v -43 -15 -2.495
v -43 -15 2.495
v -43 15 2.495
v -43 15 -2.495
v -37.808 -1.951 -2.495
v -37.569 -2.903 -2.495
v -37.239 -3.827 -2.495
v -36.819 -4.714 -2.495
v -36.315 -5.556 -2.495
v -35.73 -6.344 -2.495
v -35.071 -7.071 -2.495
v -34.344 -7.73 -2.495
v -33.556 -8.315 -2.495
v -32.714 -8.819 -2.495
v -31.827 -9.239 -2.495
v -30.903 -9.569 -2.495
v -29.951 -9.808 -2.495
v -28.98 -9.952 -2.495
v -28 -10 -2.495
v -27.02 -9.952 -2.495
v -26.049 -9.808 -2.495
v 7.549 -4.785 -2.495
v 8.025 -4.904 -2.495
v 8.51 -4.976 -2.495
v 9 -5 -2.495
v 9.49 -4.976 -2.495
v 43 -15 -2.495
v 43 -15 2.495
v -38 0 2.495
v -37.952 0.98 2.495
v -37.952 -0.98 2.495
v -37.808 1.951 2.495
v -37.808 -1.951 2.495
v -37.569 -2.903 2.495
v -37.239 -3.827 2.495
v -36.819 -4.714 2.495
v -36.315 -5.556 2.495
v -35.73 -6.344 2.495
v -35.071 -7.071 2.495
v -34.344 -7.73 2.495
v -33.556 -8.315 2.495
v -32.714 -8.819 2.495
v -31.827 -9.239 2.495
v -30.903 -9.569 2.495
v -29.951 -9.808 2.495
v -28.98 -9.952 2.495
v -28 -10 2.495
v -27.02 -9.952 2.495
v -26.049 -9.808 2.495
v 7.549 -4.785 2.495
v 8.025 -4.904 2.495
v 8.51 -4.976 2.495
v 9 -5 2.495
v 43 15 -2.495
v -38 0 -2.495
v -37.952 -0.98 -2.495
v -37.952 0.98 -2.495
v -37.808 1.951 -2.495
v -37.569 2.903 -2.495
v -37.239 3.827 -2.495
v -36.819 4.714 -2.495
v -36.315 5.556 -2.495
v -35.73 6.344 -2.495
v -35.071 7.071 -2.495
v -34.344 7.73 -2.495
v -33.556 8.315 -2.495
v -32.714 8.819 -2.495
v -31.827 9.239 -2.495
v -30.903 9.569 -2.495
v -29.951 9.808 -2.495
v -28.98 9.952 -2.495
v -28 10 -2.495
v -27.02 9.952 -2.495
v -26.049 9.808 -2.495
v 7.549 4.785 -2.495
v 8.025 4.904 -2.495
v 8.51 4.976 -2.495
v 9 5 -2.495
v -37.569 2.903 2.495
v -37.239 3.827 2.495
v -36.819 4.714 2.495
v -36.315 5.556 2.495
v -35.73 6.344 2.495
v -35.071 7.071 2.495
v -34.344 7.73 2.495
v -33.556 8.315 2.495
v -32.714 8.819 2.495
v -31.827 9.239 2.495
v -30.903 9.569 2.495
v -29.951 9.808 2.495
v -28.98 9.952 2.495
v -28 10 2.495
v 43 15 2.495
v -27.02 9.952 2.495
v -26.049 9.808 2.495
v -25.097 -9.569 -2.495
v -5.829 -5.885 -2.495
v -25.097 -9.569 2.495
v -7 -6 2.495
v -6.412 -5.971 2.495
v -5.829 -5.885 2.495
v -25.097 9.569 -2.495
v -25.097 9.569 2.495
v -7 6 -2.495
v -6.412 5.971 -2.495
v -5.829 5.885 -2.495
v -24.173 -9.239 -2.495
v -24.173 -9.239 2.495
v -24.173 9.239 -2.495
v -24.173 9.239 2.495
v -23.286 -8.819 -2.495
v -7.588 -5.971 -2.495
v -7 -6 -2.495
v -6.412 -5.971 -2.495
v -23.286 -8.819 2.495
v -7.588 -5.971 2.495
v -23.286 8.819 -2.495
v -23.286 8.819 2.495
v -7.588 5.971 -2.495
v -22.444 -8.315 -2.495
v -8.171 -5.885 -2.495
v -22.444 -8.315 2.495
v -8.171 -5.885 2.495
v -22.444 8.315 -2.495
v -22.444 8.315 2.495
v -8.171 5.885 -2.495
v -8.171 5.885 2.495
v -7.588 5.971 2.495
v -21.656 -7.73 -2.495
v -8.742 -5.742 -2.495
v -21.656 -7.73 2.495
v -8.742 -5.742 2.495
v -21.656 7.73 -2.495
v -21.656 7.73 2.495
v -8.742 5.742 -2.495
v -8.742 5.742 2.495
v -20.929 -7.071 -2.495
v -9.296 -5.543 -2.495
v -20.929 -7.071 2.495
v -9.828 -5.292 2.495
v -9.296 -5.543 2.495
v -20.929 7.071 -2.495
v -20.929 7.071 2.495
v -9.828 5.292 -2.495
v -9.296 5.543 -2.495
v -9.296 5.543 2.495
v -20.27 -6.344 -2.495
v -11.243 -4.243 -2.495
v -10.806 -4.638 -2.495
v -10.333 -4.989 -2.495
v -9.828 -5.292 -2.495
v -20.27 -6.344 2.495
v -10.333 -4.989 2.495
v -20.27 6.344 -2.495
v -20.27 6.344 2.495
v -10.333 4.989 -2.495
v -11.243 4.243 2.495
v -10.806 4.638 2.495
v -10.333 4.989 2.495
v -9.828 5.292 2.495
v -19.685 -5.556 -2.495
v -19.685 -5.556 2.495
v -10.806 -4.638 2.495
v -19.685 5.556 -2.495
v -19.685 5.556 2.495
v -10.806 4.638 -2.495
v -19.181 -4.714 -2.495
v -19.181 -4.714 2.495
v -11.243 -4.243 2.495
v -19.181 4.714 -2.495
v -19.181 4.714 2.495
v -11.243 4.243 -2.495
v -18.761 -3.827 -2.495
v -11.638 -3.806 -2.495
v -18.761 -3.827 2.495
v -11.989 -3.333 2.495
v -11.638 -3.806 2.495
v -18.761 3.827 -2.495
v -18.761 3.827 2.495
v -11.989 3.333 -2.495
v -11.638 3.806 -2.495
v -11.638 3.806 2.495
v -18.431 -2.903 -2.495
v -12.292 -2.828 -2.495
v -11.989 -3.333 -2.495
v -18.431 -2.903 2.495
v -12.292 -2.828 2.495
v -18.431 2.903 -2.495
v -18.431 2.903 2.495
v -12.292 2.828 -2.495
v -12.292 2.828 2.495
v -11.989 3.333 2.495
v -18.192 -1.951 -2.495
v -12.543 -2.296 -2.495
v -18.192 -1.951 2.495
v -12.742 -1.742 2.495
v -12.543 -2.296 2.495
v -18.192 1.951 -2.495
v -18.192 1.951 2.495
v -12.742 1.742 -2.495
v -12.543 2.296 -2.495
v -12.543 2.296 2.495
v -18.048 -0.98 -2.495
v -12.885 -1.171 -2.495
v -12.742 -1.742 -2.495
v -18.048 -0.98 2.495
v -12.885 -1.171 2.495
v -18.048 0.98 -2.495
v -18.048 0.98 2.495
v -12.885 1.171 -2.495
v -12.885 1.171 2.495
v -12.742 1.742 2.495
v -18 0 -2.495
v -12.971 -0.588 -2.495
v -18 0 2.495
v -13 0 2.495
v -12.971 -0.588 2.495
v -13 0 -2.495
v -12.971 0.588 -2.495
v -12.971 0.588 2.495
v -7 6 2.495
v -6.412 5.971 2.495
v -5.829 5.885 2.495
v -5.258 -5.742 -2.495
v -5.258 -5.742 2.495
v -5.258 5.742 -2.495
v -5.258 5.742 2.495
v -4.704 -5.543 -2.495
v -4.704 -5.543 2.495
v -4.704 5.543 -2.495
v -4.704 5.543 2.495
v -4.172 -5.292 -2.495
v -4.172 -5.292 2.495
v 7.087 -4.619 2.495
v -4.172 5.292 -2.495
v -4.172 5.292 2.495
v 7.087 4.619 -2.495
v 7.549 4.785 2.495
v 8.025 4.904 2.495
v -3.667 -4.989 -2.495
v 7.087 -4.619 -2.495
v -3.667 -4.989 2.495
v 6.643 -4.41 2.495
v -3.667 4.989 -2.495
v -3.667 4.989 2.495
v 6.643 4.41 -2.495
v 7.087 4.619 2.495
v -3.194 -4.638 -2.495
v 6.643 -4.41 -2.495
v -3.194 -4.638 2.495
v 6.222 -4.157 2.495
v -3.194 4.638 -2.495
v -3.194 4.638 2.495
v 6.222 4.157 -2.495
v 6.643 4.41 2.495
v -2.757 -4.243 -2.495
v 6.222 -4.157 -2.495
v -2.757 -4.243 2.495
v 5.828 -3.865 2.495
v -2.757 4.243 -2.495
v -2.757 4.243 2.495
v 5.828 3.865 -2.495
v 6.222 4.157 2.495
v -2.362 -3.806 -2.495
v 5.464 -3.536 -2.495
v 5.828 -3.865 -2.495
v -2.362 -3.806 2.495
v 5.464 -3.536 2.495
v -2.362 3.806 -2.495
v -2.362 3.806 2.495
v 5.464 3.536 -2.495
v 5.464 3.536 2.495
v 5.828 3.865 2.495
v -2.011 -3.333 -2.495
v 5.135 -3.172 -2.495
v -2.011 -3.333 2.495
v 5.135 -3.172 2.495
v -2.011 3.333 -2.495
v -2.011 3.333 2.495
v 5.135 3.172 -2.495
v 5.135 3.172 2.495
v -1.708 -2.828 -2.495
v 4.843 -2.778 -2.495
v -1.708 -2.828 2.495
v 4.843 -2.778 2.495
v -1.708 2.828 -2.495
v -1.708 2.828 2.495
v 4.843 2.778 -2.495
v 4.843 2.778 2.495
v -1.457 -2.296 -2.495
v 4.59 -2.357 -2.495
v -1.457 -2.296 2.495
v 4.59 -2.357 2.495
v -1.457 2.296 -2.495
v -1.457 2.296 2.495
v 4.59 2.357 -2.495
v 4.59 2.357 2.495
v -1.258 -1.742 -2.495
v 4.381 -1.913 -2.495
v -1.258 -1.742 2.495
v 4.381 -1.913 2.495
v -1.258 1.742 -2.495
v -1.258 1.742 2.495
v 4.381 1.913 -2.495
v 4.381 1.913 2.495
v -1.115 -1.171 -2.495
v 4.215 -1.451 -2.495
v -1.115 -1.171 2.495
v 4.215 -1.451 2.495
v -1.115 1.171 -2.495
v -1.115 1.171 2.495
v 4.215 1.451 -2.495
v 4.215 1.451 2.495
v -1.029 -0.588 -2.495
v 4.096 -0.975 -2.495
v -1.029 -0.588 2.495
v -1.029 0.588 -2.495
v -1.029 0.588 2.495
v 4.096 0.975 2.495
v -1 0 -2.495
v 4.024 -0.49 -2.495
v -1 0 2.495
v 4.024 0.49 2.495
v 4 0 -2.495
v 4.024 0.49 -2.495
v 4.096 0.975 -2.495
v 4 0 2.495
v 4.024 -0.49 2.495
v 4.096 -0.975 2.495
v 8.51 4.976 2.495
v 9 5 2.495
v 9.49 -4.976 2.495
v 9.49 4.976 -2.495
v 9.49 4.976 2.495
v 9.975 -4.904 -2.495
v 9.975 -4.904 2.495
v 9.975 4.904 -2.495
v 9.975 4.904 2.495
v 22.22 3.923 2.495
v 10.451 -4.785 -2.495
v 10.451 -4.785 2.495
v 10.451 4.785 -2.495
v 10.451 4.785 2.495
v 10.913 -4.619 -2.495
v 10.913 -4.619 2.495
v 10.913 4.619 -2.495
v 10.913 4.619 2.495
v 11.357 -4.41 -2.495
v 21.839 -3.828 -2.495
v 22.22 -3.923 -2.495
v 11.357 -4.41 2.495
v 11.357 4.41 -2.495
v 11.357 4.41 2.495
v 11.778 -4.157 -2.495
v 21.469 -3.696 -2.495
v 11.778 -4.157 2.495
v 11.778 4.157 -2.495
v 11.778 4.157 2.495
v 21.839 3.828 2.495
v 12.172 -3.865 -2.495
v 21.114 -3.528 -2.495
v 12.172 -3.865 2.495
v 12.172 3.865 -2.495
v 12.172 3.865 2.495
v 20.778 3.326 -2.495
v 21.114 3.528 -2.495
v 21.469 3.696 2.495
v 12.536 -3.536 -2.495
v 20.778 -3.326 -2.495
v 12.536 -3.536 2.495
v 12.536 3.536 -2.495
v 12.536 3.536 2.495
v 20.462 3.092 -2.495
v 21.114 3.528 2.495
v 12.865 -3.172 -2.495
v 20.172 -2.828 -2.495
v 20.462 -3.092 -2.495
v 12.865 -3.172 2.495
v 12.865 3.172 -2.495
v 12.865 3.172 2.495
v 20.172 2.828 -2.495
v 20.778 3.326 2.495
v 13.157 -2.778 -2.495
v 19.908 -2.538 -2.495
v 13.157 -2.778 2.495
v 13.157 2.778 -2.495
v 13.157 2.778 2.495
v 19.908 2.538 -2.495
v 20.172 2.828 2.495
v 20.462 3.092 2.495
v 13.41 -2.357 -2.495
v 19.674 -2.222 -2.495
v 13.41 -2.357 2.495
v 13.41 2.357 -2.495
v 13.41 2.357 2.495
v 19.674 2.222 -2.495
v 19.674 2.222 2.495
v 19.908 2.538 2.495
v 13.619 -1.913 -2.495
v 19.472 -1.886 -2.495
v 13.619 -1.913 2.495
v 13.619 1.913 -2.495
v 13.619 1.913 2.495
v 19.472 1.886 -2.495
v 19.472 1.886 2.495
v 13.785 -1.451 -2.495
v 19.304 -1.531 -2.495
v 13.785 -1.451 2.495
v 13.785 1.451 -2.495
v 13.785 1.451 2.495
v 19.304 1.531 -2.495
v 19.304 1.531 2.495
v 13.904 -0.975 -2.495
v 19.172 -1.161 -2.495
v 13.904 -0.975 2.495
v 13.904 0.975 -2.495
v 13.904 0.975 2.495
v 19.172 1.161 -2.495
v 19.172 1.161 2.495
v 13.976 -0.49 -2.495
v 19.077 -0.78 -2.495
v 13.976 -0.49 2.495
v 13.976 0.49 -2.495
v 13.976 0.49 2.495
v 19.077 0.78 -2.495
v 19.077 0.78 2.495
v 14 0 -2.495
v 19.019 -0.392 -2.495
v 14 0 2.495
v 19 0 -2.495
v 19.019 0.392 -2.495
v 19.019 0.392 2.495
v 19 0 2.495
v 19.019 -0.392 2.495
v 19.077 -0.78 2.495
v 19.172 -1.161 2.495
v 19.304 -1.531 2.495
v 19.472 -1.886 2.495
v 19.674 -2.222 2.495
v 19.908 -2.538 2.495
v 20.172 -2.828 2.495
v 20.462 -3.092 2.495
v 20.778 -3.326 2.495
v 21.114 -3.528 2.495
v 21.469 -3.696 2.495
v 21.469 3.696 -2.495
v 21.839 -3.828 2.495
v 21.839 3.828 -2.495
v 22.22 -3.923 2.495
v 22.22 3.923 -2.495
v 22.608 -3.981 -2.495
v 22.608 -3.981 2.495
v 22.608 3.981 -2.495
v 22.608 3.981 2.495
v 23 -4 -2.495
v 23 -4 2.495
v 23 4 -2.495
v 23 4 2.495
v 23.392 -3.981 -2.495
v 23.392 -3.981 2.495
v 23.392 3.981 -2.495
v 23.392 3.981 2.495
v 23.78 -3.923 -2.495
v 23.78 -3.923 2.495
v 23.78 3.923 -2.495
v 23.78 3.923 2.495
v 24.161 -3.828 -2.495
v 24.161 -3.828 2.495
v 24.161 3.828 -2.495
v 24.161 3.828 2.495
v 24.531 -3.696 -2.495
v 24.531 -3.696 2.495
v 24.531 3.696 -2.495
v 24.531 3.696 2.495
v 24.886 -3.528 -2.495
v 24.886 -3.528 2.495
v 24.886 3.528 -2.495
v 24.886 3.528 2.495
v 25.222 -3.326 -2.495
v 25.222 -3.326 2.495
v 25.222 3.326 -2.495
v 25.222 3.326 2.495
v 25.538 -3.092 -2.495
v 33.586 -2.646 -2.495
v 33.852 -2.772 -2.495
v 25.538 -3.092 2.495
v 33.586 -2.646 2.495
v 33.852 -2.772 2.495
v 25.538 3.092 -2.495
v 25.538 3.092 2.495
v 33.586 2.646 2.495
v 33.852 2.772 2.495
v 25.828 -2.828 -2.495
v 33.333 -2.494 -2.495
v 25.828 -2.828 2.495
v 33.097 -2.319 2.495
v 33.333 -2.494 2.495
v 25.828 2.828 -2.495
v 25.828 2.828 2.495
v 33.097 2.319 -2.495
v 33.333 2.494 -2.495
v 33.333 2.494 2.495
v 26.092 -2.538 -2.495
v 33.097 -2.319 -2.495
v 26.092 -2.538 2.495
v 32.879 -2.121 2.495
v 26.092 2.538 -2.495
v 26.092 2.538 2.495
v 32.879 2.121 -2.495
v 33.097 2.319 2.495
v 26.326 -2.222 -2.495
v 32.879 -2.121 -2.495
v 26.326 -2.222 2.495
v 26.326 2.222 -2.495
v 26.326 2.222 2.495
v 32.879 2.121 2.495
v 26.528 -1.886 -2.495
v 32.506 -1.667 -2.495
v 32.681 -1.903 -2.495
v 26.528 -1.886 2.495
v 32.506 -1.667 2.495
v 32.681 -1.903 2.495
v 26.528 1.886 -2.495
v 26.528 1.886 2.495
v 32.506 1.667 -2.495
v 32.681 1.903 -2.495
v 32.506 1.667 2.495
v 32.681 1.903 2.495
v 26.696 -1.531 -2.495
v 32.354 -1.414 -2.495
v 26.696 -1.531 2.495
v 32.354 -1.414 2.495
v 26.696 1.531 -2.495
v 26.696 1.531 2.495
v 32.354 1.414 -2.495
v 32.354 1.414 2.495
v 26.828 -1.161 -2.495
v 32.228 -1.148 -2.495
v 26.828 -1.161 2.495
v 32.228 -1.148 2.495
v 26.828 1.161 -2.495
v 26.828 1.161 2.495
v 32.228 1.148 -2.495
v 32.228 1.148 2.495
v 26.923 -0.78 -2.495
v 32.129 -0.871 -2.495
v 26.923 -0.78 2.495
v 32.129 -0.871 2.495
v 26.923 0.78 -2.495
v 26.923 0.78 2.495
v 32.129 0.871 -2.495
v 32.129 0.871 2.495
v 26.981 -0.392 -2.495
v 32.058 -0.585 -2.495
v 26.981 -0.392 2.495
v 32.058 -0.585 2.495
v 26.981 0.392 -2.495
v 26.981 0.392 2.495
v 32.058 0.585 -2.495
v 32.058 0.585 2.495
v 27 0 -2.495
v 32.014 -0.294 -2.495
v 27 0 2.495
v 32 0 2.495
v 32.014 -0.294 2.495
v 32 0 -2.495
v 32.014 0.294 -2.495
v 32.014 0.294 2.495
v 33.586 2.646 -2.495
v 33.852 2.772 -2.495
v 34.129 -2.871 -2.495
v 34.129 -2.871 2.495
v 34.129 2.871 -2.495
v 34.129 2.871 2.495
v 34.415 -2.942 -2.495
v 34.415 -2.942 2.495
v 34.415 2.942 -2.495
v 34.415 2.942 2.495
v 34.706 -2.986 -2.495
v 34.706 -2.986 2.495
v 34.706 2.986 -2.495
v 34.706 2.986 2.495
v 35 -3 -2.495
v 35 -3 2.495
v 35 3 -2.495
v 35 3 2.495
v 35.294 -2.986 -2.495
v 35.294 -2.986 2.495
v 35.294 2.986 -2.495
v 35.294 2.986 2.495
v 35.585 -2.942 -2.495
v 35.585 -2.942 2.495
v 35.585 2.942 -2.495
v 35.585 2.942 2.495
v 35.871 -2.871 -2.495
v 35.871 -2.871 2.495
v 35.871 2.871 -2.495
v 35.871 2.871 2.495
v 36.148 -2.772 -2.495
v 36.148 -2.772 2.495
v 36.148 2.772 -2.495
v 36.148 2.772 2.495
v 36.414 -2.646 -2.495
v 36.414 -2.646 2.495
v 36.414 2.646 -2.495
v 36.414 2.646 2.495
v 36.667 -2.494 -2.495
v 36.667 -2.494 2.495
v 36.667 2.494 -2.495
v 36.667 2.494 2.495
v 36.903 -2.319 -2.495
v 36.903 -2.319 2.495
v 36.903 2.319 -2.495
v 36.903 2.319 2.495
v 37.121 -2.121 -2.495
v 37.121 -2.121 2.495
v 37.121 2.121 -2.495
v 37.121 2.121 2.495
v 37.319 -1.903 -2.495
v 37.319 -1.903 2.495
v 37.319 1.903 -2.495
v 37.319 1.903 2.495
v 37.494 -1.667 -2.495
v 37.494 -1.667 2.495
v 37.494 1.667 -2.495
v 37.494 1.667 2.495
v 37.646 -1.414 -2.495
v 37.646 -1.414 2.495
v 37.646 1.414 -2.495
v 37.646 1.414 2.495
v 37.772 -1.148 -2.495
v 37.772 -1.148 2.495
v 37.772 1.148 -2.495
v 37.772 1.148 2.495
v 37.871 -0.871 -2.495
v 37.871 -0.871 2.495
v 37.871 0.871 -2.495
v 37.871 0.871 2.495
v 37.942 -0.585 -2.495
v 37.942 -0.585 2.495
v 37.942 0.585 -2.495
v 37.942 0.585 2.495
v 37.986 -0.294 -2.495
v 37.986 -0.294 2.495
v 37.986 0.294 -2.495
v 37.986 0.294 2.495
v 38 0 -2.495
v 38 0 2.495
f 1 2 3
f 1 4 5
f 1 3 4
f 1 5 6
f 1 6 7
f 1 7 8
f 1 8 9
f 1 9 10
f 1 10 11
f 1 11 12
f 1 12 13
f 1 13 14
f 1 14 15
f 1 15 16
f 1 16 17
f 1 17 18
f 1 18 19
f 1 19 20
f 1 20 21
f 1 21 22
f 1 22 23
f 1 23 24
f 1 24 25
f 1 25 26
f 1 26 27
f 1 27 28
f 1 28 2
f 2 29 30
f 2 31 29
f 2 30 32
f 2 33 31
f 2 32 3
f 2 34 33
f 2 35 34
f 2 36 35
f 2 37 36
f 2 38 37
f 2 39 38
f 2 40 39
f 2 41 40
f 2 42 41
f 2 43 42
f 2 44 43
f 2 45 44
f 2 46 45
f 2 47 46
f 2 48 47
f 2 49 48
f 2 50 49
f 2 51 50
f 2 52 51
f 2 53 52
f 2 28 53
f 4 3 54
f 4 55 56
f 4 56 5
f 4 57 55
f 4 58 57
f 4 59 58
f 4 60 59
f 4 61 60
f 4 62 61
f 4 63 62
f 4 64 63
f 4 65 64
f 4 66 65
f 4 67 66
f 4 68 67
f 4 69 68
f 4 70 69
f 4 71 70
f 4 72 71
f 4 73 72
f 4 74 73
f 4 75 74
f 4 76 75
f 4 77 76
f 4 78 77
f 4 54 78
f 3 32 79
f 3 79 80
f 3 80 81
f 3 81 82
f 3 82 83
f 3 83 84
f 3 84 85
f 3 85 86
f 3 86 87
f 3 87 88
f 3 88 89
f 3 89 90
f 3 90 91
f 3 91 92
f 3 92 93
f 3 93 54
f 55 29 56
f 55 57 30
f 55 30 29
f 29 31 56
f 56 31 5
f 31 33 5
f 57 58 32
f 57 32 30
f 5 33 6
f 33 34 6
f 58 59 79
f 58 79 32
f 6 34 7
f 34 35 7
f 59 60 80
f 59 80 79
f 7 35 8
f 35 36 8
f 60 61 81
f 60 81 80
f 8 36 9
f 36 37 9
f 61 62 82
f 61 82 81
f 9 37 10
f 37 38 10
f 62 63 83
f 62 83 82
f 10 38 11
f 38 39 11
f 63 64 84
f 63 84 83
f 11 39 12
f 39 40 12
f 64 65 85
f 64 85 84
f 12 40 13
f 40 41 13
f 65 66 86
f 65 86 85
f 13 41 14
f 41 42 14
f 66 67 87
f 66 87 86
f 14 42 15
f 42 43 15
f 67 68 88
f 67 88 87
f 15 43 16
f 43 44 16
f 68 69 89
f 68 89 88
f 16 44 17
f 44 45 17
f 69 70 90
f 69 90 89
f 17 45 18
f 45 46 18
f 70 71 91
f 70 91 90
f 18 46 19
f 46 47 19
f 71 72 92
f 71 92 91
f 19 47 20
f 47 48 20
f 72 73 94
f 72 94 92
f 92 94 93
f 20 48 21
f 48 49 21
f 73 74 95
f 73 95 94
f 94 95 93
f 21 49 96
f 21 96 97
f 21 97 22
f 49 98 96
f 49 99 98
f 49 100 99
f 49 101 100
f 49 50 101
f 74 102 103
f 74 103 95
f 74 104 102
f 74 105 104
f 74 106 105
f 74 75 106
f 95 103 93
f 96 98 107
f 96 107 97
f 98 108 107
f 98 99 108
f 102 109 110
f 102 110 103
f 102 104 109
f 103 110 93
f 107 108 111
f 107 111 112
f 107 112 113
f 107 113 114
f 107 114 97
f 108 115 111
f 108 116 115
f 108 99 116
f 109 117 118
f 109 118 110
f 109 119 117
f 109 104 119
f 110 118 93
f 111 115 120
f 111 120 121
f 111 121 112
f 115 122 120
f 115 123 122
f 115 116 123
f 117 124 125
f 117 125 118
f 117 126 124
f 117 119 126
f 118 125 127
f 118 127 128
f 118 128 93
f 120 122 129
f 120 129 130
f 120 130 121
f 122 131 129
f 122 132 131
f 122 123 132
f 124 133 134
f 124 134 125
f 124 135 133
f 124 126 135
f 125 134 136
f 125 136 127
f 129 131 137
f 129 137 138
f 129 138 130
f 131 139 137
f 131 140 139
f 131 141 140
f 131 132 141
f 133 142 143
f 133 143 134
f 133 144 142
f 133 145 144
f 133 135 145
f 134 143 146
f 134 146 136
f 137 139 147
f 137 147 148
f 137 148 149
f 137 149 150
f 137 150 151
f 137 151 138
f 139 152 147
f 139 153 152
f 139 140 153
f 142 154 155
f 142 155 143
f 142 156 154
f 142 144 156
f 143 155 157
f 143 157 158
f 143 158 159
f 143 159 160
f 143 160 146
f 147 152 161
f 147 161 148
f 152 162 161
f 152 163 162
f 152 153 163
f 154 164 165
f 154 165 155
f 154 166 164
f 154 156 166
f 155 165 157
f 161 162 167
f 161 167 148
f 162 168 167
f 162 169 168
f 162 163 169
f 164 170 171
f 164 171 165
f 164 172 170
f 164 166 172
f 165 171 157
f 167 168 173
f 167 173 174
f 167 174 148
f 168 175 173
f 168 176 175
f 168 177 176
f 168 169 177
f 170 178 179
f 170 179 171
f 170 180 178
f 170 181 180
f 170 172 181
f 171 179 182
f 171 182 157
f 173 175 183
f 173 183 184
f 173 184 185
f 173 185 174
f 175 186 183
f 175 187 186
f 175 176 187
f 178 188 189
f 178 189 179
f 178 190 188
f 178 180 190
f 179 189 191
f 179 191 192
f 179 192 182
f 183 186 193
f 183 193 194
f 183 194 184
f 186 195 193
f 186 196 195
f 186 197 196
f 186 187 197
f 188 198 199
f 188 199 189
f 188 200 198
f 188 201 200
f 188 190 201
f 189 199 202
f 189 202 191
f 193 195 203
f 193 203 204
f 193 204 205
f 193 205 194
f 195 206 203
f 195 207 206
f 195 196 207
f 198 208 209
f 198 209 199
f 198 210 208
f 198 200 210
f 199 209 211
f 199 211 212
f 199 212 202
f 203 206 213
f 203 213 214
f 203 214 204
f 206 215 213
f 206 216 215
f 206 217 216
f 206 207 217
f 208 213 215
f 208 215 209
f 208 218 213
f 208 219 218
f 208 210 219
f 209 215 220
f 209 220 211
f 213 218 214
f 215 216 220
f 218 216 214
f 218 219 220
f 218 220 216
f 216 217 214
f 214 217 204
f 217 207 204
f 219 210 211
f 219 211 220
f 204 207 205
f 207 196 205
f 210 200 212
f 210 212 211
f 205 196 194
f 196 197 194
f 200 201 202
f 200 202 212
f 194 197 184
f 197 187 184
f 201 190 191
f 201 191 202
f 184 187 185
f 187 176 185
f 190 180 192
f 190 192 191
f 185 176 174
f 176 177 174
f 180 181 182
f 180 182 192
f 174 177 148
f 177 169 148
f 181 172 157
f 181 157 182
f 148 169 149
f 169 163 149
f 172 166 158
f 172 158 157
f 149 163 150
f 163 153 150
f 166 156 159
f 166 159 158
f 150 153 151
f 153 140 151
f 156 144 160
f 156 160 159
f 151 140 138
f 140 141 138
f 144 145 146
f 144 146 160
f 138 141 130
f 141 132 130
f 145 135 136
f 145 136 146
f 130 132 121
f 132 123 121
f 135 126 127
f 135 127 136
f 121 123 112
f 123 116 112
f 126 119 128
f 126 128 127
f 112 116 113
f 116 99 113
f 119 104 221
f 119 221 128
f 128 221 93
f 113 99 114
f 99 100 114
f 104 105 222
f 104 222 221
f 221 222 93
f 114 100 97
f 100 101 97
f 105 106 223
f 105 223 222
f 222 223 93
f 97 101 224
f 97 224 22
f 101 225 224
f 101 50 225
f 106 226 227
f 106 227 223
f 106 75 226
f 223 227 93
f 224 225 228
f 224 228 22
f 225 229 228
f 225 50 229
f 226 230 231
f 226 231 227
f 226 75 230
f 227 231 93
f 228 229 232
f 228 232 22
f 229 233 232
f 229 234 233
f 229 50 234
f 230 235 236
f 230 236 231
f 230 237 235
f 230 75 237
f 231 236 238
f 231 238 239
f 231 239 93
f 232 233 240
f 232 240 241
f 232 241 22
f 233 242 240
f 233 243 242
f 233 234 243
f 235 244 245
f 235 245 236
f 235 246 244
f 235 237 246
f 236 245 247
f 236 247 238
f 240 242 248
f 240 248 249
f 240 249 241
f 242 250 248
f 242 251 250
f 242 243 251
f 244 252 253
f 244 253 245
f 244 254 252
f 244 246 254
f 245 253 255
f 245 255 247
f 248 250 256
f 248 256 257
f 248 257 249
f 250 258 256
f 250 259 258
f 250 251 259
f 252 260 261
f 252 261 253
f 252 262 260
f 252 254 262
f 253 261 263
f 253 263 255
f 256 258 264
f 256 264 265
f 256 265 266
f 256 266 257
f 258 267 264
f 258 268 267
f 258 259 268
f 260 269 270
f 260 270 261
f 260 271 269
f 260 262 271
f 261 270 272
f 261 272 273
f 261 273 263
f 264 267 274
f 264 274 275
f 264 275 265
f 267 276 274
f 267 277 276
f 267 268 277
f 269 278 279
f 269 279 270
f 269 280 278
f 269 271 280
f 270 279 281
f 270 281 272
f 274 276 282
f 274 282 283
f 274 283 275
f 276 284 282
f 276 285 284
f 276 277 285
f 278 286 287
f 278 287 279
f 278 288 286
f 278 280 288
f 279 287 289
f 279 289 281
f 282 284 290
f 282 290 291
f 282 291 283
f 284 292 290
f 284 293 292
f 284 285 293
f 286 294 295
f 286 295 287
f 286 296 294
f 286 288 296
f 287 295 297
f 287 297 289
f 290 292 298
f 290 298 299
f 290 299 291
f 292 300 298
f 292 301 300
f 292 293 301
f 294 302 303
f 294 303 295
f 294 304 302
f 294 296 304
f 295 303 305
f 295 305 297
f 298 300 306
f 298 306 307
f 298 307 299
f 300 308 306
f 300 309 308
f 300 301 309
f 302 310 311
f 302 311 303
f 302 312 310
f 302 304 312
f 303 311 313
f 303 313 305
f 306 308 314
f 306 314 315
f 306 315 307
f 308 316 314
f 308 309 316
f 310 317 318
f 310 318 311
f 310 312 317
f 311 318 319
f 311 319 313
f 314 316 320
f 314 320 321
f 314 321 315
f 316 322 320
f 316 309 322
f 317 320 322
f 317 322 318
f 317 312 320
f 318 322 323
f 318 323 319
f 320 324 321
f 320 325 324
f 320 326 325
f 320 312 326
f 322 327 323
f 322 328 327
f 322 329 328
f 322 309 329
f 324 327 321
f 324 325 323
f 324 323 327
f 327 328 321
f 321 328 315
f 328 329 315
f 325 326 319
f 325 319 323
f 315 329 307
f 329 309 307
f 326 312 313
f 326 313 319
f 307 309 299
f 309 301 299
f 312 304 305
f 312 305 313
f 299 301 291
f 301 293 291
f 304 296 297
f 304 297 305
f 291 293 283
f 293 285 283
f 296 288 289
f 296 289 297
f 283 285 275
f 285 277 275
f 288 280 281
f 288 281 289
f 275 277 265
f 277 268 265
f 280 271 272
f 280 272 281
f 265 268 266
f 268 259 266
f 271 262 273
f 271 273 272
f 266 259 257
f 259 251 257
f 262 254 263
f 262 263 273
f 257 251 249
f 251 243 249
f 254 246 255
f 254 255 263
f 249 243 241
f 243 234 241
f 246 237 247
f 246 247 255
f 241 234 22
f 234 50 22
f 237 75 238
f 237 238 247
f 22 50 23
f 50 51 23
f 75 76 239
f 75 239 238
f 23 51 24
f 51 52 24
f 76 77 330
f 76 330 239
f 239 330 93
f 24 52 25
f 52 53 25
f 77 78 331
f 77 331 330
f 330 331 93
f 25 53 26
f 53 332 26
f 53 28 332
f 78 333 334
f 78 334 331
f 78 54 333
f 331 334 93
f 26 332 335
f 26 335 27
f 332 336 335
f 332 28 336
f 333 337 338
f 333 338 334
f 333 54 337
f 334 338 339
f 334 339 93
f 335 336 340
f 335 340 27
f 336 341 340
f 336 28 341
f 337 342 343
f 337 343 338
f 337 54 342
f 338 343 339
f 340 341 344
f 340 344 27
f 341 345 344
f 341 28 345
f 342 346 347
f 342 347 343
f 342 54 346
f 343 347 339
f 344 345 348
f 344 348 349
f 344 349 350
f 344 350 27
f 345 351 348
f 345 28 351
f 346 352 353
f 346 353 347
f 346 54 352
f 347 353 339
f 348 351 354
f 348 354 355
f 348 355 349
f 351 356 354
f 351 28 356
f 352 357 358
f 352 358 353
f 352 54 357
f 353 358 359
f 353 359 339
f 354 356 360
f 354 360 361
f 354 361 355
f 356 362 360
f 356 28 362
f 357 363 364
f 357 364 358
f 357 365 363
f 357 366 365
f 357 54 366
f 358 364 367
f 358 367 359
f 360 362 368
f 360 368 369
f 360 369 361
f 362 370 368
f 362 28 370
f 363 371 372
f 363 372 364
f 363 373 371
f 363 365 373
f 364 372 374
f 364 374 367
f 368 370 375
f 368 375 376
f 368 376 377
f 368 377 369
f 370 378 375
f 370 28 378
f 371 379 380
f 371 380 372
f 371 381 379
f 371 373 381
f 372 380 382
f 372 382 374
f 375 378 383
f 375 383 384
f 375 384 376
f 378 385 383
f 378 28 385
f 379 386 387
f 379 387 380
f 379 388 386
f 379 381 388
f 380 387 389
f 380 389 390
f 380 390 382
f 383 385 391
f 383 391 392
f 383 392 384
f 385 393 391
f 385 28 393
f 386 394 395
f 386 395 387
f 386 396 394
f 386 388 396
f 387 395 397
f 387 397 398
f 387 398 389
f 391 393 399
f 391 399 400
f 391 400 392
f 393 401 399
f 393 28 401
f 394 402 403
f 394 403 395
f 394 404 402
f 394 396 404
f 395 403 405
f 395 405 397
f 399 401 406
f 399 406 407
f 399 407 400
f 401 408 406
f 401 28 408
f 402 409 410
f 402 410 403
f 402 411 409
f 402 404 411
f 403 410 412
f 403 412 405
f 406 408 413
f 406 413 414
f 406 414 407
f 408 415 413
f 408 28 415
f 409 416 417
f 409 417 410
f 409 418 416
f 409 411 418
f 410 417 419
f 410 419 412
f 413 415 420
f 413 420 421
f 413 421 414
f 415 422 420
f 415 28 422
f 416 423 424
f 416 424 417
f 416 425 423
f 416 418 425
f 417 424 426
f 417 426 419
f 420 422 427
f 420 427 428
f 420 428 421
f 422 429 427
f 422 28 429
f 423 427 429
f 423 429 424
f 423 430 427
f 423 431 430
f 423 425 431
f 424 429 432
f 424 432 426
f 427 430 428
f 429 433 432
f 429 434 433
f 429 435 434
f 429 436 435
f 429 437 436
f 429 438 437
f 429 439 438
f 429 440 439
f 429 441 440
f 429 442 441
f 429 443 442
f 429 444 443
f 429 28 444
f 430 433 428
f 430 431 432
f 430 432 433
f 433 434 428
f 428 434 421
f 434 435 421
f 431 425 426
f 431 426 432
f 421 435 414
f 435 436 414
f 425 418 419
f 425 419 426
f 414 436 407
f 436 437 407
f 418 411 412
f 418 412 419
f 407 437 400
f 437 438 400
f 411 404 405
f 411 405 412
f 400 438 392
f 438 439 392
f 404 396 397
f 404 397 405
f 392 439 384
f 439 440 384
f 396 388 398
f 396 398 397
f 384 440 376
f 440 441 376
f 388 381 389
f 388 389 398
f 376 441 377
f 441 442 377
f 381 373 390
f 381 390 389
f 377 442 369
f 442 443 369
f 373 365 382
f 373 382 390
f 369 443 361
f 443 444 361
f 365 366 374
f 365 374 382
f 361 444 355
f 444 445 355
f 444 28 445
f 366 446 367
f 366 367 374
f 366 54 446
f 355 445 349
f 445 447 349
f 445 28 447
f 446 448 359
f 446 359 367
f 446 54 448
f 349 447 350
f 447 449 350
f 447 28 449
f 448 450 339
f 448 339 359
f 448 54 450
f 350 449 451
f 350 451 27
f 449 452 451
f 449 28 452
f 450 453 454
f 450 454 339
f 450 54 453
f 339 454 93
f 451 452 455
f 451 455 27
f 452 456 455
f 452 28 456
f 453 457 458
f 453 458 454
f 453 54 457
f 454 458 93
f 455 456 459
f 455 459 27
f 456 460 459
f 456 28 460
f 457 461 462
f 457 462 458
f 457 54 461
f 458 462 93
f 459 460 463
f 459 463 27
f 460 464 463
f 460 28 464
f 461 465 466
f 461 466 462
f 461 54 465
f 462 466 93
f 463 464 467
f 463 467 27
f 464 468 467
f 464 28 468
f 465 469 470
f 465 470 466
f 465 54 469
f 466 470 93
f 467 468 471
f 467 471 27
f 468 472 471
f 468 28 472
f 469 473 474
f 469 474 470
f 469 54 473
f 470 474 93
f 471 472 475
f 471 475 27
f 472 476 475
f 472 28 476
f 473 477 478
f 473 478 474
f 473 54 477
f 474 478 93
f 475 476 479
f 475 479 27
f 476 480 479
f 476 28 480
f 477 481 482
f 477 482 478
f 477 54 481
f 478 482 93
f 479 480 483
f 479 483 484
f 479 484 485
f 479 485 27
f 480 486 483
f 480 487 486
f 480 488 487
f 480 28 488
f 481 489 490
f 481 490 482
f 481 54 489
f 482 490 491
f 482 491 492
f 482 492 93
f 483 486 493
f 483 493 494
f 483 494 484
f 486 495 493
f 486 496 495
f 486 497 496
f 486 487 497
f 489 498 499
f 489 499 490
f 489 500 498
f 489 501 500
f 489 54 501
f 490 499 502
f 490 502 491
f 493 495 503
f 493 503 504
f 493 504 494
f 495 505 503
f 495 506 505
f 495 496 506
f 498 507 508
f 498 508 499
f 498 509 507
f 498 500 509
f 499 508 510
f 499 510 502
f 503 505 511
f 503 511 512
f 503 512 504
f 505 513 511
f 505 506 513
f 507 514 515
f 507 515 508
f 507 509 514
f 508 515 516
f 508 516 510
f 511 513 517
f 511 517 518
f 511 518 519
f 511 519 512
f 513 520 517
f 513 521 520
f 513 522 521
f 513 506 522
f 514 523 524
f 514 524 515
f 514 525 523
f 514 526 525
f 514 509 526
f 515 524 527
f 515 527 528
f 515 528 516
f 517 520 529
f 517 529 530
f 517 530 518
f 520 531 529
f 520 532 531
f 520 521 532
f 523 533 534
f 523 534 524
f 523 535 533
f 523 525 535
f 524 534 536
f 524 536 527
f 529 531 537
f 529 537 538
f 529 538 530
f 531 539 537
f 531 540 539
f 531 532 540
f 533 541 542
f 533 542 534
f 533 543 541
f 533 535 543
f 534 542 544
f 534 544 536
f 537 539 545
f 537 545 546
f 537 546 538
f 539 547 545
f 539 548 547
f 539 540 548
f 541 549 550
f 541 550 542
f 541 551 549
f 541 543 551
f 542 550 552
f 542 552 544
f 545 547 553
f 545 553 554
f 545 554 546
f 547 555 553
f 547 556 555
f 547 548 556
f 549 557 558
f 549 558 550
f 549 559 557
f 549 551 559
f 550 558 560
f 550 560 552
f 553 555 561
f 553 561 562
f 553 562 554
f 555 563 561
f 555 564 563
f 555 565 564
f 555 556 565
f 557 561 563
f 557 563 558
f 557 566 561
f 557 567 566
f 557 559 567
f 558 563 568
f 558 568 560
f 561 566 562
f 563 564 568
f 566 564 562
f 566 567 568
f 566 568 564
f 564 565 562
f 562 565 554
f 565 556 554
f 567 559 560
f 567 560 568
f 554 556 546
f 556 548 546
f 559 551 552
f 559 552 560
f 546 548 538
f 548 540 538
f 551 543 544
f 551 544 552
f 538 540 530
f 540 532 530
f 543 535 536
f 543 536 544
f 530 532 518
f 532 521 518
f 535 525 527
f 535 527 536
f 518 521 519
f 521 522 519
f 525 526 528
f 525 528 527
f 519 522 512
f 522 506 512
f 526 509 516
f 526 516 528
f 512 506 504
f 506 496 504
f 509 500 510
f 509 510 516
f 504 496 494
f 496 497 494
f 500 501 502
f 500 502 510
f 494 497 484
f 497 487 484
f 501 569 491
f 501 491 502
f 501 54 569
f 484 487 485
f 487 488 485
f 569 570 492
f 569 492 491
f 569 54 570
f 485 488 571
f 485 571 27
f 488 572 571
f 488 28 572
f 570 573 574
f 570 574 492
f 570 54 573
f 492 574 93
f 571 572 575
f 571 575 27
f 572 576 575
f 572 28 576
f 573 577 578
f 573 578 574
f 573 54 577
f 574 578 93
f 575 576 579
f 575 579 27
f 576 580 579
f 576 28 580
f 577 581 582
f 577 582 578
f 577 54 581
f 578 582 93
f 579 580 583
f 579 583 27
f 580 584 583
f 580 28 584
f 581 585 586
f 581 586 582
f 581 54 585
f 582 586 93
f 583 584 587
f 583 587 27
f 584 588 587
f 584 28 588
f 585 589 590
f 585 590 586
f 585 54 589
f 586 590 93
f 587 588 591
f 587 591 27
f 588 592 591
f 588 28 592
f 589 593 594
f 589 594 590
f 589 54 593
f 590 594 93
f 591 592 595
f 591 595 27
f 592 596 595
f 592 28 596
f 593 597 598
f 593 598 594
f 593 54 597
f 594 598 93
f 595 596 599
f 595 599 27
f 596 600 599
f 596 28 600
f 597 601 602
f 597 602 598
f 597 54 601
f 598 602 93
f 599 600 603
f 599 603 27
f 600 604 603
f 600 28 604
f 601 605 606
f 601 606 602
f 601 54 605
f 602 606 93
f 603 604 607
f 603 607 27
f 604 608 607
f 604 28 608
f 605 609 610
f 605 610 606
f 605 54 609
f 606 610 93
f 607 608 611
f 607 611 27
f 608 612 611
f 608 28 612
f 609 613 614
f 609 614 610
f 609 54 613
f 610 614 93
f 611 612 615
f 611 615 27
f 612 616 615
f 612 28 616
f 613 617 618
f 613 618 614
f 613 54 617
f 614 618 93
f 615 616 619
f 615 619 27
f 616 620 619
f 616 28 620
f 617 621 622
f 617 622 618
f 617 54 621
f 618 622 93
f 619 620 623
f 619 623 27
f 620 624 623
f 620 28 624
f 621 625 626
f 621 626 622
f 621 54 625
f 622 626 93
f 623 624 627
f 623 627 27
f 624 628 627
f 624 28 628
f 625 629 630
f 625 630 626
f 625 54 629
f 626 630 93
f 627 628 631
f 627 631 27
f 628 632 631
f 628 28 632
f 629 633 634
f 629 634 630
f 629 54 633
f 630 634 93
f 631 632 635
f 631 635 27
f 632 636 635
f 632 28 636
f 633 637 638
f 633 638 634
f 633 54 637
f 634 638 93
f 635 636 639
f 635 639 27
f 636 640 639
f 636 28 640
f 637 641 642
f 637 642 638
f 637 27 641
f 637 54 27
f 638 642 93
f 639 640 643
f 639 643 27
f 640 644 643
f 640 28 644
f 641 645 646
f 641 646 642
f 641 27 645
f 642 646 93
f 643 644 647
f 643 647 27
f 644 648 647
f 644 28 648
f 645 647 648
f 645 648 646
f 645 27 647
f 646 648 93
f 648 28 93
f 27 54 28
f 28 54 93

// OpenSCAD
// Start: lazy_union
default_5_default_5();
// End: lazy_union

// Modules.

// 'PartMaterial undef-default - default 5.0'
module default_5_default_5() {
  // 'None : _combine_solids_and_holes'
  union() {
    // '_combine_solids_and_holes'
    difference() {
      // 'default : _combine_solids_and_holes'
      union() {
        // 'plate'
        multmatrix(m=[[1.0, 0.0, 0.0, -43.0], [0.0, 1.0, 0.0, -15.0], [0.0, 0.0, 1.0, -2.495], [0.0, 0.0, 0.0, 1.0]]) {
          // 'plate : _combine_solids_and_holes'
          union() {
            // 'plate'
            cube(size=[86.0, 30.0, 4.99]);
          }
        }
      }
      // 'default'
      multmatrix(m=[[0.0, 1.0, 0.0, 35.0], [-1.0, 0.0, 0.0, 0.0], [0.0, 0.0, 1.0, -2.5], [0.0, 0.0, 0.0, 1.0]]) {
        // "('hole', 0) : _combine_solids_and_holes"
        union() {
          // ('hole', 0)
          cylinder(h=5.0, r1=3.0, r2=3.0, center=false, $fn=64);
        }
      }
      // 'default'
      multmatrix(m=[[0.0, 1.0, 0.0, 23.0], [-1.0, 0.0, 0.0, 0.0], [0.0, 0.0, 1.0, -2.5], [0.0, 0.0, 0.0, 1.0]]) {
        // "('hole', 1) : _combine_solids_and_holes"
        union() {
          // ('hole', 1)
          cylinder(h=5.0, r1=4.0, r2=4.0, center=false, $fn=64);
        }
      }
      // 'default'
      multmatrix(m=[[0.0, 1.0, 0.0, 9.0], [-1.0, 0.0, 0.0, 0.0], [0.0, 0.0, 1.0, -2.5], [0.0, 0.0, 0.0, 1.0]]) {
        // "('hole', 2) : _combine_solids_and_holes"
        union() {
          // ('hole', 2)
          cylinder(h=5.0, r1=5.0, r2=5.0, center=false, $fn=64);
        }
      }
      // 'default'
      multmatrix(m=[[0.0, 1.0, 0.0, -7.0], [-1.0, 0.0, 0.0, 0.0], [0.0, 0.0, 1.0, -2.5], [0.0, 0.0, 0.0, 1.0]]) {
        // "('hole', 3) : _combine_solids_and_holes"
        union() {
          // ('hole', 3)
          cylinder(h=5.0, r1=6.0, r2=6.0, center=false, $fn=64);
        }
      }
      // 'default'
      multmatrix(m=[[0.0, 1.0, 0.0, -28.0], [-1.0, 0.0, 0.0, 0.0], [0.0, 0.0, 1.0, -2.5], [0.0, 0.0, 0.0, 1.0]]) {
        // "('hole', 4) : _combine_solids_and_holes"
        union() {
          // ('hole', 4)
          cylinder(h=5.0, r1=10.0, r2=10.0, center=false, $fn=64);
        }
      }
    }
  }
} // end module default_5_default_5
